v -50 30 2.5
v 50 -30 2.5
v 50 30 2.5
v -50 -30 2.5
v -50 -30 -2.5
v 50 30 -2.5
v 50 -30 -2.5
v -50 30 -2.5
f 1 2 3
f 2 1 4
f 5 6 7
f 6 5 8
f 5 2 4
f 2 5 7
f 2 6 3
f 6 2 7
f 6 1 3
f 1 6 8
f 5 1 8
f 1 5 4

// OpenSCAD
// Define dimensions for the rectangular plate
plate_length = 100;  // Length of the plate
plate_width = 60;    // Width of the plate
plate_thickness = 5; // Thickness of the plate

// Create the rectangular plate
module rectangular_plate() {
    cube([plate_length, plate_width, plate_thickness], center = true);
}

// Render the model
rectangular_plate();
